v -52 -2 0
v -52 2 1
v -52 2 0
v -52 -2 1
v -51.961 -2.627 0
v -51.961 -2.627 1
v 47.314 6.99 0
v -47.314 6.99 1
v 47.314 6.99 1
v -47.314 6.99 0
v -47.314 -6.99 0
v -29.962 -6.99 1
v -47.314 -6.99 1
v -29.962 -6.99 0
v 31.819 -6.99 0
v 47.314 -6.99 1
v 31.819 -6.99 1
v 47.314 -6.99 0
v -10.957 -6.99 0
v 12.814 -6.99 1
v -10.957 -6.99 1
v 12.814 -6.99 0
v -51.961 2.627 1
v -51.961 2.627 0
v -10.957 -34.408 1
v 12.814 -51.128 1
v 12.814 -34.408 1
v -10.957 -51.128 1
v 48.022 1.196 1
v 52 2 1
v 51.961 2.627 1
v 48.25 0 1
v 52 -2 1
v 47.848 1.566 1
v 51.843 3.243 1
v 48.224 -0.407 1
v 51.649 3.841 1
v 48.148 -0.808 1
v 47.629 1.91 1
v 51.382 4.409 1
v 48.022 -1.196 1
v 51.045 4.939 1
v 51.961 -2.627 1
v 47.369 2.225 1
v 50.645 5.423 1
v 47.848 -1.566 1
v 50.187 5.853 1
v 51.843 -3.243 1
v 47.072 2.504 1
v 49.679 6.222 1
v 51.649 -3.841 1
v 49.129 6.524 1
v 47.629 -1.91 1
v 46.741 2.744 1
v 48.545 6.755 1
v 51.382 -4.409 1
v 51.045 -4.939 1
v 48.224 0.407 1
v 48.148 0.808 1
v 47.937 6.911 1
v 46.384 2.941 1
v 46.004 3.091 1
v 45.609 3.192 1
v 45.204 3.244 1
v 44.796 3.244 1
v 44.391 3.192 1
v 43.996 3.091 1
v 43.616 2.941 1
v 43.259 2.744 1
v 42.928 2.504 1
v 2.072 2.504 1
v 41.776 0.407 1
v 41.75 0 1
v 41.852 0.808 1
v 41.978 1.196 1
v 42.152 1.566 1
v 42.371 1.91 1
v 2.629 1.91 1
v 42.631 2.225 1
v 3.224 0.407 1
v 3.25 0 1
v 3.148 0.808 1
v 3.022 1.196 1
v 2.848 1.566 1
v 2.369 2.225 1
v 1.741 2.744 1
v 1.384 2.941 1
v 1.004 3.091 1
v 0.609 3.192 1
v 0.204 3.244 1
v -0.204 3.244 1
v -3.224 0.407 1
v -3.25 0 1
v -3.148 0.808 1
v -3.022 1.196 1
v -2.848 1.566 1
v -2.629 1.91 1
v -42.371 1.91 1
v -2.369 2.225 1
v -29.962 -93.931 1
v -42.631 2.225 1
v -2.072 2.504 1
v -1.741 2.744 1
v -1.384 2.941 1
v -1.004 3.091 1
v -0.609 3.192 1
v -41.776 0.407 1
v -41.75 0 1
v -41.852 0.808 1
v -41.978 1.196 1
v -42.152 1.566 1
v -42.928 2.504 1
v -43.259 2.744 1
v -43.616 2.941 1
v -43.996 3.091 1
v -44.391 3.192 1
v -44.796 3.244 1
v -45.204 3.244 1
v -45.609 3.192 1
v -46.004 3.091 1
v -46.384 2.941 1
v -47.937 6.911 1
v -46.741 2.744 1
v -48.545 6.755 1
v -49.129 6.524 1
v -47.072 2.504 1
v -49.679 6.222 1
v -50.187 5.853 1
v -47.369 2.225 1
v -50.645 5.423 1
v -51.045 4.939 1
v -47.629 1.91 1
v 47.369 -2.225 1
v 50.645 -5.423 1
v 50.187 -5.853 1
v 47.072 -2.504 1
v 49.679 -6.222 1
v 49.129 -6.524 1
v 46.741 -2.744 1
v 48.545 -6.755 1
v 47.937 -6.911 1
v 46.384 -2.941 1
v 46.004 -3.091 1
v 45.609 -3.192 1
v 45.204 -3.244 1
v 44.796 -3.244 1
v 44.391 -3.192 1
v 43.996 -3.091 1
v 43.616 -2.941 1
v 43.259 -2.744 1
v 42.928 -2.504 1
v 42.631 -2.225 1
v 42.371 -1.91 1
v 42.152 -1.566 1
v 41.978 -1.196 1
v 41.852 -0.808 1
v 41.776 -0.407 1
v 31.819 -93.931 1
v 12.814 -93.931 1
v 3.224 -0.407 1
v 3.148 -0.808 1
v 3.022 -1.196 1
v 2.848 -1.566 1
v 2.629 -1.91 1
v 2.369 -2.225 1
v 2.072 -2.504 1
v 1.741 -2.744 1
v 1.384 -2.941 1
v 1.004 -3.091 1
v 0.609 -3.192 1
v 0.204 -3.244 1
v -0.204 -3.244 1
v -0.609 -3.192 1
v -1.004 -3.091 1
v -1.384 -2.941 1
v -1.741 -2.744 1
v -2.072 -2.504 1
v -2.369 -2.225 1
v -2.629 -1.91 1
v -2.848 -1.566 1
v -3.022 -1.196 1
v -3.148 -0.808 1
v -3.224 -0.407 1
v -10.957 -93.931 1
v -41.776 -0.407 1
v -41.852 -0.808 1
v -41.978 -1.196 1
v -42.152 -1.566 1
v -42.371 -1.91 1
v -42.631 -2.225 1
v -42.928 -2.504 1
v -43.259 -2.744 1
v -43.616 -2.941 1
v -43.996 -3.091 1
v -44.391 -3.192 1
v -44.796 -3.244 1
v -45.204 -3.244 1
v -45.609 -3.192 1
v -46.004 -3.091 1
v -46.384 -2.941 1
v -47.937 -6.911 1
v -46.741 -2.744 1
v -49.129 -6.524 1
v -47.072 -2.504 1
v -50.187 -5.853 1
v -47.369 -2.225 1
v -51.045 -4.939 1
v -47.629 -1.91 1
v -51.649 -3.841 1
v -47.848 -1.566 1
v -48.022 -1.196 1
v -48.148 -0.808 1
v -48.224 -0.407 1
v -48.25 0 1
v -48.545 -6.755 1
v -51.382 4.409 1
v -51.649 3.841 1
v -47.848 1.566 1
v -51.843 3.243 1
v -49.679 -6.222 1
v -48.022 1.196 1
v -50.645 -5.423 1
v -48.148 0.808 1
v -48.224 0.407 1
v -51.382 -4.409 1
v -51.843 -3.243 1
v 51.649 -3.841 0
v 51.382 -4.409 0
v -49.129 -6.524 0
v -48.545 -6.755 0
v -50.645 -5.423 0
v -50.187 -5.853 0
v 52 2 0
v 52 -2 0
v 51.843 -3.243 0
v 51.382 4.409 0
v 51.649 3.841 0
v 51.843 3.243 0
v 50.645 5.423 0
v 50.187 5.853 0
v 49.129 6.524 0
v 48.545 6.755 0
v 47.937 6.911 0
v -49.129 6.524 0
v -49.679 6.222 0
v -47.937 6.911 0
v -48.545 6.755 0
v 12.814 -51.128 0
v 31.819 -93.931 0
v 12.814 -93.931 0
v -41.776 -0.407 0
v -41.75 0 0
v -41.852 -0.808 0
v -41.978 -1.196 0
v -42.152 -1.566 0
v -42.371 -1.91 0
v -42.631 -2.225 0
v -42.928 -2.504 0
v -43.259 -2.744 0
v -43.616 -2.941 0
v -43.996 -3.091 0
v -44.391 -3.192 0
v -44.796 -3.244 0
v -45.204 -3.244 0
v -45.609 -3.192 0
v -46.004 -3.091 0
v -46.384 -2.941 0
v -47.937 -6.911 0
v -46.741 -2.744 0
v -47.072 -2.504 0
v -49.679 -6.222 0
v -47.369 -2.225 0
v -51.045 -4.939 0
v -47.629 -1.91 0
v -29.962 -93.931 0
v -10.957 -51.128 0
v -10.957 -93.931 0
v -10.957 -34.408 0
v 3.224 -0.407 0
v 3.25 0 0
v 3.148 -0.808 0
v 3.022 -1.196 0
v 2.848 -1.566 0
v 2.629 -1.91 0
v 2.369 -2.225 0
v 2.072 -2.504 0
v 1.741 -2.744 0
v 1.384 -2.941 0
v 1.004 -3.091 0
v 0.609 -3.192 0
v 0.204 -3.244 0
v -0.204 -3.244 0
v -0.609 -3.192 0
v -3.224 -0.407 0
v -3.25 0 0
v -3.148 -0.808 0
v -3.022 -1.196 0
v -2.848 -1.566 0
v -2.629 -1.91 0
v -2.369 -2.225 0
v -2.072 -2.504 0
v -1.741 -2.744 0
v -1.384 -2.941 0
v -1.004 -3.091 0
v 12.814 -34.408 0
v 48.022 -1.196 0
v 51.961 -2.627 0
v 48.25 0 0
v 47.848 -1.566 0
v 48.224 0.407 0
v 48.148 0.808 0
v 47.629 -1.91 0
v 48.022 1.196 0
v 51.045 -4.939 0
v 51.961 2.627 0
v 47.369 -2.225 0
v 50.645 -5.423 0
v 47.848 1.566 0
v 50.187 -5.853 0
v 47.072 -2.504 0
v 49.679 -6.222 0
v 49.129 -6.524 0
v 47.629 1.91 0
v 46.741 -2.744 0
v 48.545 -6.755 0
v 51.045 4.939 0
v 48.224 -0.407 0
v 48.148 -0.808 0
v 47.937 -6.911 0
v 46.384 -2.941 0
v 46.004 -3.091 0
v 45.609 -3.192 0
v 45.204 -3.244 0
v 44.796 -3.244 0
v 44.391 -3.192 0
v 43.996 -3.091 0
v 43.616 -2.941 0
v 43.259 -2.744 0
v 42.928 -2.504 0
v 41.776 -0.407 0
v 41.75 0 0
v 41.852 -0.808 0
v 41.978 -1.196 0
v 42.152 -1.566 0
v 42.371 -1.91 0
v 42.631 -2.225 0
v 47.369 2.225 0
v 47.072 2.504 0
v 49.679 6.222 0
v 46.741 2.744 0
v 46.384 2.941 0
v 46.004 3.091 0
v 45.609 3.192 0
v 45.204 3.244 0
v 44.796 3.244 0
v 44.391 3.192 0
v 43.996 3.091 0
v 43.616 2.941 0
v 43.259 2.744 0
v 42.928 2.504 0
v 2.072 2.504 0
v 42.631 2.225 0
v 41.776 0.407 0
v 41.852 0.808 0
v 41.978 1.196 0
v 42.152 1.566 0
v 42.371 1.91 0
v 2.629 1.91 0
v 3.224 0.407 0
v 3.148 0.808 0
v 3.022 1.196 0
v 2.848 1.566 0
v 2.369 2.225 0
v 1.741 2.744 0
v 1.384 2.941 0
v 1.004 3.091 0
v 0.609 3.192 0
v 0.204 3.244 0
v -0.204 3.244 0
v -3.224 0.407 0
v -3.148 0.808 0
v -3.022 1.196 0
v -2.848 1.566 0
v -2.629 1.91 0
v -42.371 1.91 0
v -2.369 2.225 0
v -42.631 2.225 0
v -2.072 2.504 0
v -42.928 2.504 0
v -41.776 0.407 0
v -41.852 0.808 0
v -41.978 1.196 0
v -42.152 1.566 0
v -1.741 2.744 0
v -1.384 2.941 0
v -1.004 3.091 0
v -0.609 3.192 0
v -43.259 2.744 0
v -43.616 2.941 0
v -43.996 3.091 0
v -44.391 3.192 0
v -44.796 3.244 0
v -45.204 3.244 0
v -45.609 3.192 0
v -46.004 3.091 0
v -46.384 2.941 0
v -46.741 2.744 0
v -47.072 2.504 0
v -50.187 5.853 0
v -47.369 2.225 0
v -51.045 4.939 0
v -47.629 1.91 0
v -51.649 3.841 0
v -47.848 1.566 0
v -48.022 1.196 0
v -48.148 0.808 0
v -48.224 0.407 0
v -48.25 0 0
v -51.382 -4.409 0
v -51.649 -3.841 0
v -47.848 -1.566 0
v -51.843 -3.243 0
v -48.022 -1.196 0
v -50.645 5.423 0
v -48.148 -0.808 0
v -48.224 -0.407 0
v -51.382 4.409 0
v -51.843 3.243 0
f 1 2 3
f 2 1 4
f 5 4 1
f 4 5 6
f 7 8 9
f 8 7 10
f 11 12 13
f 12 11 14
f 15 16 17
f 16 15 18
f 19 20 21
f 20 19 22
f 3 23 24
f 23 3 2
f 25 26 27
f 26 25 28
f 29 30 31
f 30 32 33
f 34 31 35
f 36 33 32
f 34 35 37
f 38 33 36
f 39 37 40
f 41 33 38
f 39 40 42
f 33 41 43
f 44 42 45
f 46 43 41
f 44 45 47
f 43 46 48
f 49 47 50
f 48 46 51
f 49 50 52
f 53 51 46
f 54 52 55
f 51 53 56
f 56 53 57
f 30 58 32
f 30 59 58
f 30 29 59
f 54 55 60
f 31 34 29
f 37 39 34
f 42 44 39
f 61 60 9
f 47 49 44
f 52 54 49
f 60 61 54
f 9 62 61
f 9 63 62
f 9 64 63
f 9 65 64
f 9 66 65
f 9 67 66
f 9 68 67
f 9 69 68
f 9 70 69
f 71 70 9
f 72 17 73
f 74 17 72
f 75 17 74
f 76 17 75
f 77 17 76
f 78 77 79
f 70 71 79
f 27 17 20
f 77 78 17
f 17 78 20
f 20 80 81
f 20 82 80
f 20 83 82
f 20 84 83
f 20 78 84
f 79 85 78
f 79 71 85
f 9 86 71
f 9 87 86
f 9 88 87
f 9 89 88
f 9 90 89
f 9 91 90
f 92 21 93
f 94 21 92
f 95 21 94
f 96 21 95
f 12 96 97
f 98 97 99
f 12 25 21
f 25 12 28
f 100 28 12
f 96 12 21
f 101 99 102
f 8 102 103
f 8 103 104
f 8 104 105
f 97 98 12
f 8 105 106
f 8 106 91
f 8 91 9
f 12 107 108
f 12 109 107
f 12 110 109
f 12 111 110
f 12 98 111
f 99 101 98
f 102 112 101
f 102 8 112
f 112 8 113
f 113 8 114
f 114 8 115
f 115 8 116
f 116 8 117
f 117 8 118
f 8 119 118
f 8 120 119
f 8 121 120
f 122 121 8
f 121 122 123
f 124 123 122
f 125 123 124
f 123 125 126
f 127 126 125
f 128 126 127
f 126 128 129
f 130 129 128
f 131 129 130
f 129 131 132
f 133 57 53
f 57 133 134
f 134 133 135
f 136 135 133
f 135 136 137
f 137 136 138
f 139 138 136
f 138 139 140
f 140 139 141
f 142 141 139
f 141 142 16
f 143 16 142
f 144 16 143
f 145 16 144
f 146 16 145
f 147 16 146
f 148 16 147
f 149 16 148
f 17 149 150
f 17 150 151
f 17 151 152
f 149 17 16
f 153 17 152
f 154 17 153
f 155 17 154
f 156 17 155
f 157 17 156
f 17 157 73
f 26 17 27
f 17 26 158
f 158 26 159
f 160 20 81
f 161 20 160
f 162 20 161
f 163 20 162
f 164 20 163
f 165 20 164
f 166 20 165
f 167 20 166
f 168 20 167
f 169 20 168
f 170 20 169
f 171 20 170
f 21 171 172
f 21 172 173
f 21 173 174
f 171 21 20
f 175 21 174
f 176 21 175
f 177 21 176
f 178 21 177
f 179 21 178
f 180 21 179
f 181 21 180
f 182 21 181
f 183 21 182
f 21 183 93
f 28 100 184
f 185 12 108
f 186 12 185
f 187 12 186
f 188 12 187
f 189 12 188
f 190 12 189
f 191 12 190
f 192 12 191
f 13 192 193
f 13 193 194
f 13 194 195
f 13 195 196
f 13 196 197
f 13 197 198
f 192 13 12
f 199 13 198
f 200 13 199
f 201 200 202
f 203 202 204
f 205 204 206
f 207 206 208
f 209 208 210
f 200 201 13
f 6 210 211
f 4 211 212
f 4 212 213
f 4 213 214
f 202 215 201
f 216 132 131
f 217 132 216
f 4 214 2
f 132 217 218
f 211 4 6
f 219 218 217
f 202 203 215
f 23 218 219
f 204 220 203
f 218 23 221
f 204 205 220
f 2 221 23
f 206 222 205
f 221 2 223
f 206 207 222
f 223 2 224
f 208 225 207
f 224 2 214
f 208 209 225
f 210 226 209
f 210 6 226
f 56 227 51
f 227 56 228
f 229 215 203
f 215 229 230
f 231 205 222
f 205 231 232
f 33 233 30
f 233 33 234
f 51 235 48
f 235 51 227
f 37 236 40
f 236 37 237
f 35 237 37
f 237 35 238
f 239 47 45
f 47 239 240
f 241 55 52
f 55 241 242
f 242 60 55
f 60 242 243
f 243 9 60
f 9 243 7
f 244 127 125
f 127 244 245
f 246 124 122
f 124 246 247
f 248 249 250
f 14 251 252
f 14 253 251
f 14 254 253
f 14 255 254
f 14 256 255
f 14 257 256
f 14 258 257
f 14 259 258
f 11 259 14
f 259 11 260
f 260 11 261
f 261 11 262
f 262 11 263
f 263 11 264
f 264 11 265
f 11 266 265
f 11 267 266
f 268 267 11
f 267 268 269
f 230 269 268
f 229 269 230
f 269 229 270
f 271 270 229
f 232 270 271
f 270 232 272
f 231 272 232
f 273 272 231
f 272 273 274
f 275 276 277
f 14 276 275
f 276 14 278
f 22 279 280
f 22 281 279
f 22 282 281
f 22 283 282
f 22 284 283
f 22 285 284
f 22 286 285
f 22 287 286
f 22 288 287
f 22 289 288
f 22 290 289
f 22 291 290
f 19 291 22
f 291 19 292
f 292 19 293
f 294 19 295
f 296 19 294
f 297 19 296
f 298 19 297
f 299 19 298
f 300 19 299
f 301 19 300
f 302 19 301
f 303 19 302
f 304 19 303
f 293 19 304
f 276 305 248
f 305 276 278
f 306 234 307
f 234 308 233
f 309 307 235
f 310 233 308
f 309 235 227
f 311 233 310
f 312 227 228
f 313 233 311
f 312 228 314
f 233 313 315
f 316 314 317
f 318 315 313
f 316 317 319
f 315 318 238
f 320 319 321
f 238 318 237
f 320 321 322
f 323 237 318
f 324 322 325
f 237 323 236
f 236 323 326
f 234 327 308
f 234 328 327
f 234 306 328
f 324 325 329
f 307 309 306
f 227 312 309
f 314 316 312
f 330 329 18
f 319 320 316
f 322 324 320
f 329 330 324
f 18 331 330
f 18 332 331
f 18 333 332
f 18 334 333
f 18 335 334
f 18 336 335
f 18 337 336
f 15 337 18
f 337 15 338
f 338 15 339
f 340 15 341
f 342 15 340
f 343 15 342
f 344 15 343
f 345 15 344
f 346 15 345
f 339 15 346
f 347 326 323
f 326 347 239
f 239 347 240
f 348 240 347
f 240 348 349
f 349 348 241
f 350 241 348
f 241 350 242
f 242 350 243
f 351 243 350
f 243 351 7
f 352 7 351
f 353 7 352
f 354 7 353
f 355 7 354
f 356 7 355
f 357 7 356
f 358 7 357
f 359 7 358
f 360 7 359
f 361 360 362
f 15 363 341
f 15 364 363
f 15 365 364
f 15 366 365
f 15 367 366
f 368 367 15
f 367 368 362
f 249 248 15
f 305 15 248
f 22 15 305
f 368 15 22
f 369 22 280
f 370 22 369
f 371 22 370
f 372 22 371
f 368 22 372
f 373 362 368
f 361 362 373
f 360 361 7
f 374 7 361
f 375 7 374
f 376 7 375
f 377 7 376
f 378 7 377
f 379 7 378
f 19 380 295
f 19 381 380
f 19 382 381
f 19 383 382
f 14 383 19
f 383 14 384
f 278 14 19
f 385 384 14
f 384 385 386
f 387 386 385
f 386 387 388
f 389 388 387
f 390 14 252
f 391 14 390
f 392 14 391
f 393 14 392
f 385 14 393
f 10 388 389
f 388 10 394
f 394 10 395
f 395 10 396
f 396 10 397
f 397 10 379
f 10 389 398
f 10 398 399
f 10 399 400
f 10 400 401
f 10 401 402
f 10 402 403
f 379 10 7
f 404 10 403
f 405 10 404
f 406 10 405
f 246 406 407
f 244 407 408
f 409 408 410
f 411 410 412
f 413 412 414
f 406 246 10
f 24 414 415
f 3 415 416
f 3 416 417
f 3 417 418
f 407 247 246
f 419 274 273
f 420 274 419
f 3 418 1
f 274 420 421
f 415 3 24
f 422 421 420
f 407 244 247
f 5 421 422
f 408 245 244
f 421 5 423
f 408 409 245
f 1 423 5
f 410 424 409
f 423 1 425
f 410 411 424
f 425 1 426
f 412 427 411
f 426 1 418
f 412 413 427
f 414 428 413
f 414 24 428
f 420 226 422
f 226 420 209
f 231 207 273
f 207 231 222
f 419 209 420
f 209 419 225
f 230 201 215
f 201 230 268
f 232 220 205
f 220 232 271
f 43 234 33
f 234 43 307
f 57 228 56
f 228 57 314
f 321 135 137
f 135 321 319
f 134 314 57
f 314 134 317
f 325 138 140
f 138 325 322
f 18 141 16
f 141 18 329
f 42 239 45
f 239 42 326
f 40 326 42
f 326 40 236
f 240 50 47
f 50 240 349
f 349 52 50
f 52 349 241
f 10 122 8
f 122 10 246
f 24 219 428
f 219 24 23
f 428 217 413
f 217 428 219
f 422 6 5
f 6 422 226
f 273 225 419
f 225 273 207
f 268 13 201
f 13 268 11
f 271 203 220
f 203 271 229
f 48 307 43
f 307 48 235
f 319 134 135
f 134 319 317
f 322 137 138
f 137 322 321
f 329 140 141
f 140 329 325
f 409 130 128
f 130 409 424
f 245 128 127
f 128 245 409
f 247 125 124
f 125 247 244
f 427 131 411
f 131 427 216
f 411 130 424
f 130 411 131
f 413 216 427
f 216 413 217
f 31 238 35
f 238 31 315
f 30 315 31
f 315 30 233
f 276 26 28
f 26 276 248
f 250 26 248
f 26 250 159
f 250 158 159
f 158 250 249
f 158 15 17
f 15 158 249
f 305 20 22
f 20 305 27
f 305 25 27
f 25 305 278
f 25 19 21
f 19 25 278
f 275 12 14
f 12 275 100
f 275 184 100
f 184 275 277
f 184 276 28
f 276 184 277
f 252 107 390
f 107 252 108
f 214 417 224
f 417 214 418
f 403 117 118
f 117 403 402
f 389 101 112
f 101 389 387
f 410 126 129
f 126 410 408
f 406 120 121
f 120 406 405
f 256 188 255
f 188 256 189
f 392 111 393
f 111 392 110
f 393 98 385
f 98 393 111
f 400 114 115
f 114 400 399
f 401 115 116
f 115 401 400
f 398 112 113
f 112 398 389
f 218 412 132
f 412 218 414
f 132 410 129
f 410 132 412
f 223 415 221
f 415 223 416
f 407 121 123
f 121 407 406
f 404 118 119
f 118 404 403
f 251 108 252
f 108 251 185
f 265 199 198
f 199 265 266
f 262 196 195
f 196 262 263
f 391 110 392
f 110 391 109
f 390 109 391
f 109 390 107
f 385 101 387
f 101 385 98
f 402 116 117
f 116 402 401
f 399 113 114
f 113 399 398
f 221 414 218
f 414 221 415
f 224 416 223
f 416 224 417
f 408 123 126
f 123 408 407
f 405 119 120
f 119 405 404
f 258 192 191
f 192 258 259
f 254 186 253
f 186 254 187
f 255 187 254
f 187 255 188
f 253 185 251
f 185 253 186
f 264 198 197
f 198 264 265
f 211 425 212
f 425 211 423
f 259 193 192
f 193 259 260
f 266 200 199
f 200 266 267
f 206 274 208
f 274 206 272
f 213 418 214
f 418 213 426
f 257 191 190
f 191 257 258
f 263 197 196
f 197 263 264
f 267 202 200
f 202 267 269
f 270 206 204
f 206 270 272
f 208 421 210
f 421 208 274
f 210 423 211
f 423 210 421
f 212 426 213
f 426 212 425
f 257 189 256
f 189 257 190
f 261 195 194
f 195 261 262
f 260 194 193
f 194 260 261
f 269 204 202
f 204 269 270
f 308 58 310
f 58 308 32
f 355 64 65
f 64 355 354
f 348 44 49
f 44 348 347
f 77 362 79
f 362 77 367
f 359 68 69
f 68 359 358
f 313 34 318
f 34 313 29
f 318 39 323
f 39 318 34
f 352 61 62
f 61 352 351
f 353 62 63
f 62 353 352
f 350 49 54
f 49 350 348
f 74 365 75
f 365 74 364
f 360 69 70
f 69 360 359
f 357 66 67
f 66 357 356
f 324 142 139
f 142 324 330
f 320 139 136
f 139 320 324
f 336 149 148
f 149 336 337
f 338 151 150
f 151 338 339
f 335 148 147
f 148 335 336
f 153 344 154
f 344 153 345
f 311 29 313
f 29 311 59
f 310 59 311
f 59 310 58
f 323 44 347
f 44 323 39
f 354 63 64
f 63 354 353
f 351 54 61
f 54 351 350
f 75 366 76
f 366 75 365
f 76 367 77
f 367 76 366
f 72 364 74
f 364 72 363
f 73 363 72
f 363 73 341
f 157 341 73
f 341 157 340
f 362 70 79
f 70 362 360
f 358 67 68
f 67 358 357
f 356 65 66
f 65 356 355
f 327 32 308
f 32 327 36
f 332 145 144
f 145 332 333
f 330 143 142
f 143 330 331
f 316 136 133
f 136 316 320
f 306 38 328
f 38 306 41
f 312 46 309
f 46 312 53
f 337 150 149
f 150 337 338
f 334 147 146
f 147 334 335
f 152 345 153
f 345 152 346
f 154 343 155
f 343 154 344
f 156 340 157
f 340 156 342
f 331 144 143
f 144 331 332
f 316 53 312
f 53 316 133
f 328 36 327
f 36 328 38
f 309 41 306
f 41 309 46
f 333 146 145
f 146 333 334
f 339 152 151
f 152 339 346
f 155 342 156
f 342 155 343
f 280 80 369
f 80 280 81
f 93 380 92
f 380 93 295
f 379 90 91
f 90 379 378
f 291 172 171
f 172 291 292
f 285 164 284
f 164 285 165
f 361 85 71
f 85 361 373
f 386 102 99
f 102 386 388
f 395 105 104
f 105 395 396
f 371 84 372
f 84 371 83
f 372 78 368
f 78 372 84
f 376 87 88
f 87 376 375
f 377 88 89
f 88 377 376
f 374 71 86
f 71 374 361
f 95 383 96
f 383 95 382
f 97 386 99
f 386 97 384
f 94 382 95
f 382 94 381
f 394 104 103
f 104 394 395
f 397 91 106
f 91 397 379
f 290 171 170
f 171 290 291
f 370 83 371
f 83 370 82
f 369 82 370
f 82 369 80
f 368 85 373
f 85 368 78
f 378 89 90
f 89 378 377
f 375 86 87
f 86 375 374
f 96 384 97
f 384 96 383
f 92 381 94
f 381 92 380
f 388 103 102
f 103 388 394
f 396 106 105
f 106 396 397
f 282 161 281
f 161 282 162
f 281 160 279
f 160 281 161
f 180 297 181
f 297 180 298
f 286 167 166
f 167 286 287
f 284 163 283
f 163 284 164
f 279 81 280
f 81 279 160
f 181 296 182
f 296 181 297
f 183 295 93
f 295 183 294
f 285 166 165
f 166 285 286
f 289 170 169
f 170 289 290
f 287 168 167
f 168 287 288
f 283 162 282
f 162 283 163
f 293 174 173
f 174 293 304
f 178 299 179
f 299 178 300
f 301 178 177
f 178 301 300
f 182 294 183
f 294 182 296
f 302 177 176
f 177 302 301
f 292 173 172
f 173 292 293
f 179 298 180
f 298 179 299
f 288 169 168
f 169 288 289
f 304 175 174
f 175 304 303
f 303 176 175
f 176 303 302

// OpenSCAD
$fn = 50;


difference() {
	union() {
		translate(v = [0, 0, 0]) {
			rotate(a = [0, 0, 0]) {
				hull() {
					translate(v = [-47.0000000000, 2.0000000000, 0]) {
						rotate(a = [0, 0, 0]) {
							translate(v = [0, 0, 0]) {
								rotate(a = [0, 0, 0]) {
									cylinder(h = 1, r = 5);
								}
							}
						}
					}
					translate(v = [47.0000000000, 2.0000000000, 0]) {
						rotate(a = [0, 0, 0]) {
							translate(v = [0, 0, 0]) {
								rotate(a = [0, 0, 0]) {
									cylinder(h = 1, r = 5);
								}
							}
						}
					}
					translate(v = [-47.0000000000, -2.0000000000, 0]) {
						rotate(a = [0, 0, 0]) {
							translate(v = [0, 0, 0]) {
								rotate(a = [0, 0, 0]) {
									cylinder(h = 1, r = 5);
								}
							}
						}
					}
					translate(v = [47.0000000000, -2.0000000000, 0]) {
						rotate(a = [0, 0, 0]) {
							translate(v = [0, 0, 0]) {
								rotate(a = [0, 0, 0]) {
									cylinder(h = 1, r = 5);
								}
							}
						}
					}
				}
			}
		}
		translate(v = [0, 0, 0]) {
			rotate(a = [0, 0, 0]) {
				linear_extrude(height = 1) {
					text(font = "DejaVu Sans Mono:style=Bold", halign = "center", size = 95, text = "H", valign = "top");
				}
			}
		}
	}
	union() {
		translate(v = [-45.0000000000, 0.0000000000, -125.0000000000]) {
			rotate(a = [0, 0, 0]) {
				cylinder(h = 250, r = 3.2500000000);
			}
		}
		translate(v = [45.0000000000, 0.0000000000, -125.0000000000]) {
			rotate(a = [0, 0, 0]) {
				cylinder(h = 250, r = 3.2500000000);
			}
		}
		translate(v = [45.0000000000, 0.0000000000, -125.0000000000]) {
			rotate(a = [0, 0, 0]) {
				cylinder(h = 250, r = 3.2500000000);
			}
		}
		translate(v = [0, 0, -125.0000000000]) {
			rotate(a = [0, 0, 0]) {
				cylinder(h = 250, r = 3.2500000000);
			}
		}
	}
}
